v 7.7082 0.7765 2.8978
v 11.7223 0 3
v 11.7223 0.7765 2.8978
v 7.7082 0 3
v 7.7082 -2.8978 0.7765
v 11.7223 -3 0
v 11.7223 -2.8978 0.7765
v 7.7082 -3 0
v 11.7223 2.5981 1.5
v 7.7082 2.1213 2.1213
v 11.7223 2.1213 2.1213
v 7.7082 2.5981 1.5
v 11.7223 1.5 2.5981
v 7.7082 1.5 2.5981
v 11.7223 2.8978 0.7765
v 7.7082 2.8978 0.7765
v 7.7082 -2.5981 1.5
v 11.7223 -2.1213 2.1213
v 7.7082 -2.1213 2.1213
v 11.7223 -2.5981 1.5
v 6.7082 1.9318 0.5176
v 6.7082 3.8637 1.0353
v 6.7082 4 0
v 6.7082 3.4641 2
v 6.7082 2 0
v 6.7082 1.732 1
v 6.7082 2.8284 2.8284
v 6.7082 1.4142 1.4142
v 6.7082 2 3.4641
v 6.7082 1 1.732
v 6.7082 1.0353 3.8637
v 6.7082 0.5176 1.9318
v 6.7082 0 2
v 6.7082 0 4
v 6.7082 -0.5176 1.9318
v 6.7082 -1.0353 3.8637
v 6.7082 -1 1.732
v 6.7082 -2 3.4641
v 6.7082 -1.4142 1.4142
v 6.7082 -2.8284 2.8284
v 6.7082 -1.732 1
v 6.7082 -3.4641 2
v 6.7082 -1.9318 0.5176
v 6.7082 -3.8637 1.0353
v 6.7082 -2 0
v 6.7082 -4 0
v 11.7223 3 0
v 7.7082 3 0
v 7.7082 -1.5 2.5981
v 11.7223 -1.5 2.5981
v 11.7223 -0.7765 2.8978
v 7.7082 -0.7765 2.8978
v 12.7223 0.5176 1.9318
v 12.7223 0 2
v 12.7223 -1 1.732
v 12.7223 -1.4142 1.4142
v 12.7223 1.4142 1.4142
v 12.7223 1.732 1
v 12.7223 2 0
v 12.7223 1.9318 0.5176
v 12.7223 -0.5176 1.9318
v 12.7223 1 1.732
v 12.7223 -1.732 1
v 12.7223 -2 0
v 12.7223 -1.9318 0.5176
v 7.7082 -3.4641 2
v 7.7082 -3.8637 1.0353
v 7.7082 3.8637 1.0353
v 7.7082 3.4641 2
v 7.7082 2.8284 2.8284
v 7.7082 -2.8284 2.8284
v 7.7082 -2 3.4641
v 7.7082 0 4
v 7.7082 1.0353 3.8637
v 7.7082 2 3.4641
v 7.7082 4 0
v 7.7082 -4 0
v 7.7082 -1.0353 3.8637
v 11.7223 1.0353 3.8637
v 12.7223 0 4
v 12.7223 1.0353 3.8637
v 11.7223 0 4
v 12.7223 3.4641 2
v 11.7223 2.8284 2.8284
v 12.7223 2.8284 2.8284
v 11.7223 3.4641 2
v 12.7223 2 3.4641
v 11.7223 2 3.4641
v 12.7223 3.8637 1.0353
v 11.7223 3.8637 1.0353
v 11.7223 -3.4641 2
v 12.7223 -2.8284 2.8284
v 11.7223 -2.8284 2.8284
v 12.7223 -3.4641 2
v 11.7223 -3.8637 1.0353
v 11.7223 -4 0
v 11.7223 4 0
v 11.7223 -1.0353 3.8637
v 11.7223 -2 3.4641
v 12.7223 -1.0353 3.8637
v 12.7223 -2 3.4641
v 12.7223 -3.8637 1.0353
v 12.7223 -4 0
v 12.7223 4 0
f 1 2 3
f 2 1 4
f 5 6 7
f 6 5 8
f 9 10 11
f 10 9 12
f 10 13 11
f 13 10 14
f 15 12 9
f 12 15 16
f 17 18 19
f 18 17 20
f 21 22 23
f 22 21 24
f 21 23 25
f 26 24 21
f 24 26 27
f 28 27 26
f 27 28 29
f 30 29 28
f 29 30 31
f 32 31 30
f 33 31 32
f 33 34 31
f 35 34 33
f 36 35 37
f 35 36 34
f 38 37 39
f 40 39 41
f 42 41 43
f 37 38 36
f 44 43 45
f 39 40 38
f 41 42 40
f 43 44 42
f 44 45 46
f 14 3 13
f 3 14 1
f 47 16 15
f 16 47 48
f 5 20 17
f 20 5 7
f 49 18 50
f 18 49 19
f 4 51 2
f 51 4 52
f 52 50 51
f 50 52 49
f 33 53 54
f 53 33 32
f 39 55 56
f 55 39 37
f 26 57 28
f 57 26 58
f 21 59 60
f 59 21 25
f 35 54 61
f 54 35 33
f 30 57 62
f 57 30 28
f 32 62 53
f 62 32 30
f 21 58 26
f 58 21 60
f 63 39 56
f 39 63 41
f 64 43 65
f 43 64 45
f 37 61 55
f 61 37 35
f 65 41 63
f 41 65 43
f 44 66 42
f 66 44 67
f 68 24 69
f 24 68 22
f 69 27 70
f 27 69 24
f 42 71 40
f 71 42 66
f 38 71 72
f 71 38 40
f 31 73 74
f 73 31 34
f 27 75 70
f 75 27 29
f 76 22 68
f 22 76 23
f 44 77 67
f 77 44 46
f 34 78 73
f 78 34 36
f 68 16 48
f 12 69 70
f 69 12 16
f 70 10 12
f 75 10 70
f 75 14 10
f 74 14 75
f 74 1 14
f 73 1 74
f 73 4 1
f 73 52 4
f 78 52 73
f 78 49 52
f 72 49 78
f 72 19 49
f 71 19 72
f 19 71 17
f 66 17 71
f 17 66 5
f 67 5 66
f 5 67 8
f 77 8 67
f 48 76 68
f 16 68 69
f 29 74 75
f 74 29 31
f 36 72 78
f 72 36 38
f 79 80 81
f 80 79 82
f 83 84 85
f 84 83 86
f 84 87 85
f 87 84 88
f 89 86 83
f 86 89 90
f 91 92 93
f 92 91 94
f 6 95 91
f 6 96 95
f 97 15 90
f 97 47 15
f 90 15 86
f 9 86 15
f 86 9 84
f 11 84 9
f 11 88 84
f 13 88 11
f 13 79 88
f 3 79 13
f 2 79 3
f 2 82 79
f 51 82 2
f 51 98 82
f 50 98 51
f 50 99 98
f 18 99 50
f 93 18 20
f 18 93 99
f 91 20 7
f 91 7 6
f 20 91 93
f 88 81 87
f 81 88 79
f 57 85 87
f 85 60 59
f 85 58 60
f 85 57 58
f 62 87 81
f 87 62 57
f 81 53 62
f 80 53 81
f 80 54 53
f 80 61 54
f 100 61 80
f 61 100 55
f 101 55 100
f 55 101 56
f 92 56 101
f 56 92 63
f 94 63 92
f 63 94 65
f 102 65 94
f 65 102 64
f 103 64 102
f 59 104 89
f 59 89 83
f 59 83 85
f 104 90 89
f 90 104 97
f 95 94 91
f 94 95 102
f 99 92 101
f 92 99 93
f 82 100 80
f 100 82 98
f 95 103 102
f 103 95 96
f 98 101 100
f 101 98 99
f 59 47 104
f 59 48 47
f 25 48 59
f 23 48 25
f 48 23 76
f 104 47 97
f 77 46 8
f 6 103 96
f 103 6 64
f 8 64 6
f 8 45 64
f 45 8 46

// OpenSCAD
// file: ../build_environments.scad
// build_environments.scad: modules to build level sections
//

module pool(diameter=10.0, wall_height=2.0, step_width=3.0, connections=[])
{
    difference() {
        union() {
        difference() {
            cylinder(h=0.5,r1=diameter+step_width,r2=diameter+step_width,$fn=48);
            translate([0,0,-0.1])
                cylinder(h=0.7,r1=diameter,r2=diameter,$fn=48);
        }
        difference() {
            cylinder(h=wall_height,r1=diameter+step_width+1.0,r2=diameter+step_width+1.0,$fn=48);
            translate([0,0,-0.1])
                cylinder(h=wall_height+0.2,r1=diameter+step_width,r2=diameter+step_width,$fn=48);
        }
        }
    
        for (c = connections)
        {
            rotate([0,90,0]) {
                angle = atan2(c[1],c[0]);
                rotate([-angle,0,0]) {
                    cylinder(h=diameter+5.0,r1=c[2],r2=c[2],$fn=48);
                }
            }
        }
    }
}

module straight(length=10.0, width=2.0, dy1=0.0, dy2=0.0, dz=0.0)
{
    dims = [0, 0, 0, 0, 0, (dz/length)];
    matrix = [
        [ 1, dims[0], dims[1], 0 ],
        [ dims[2], 1, dims[4], 0 ],
        [ dims[5], dims[3], 1, 0 ],
        [ 0, 0, 0, 1 ]
    ];
    multmatrix(matrix)
    difference() {
        translate([dy1,0,0])
        union() {
            rotate([0,90,0]) {
                difference() {
                    cylinder(h=(length-dy1-dy2),r1=width+1.0,r2=width+1.0,$fn=24);
                    translate([0,0,-0.1])
                        cylinder(h=(length-dy1-dy2+0.2),r1=width,r2=width,$fn=24);
                }
                difference() {
                    cylinder(h=1.0,r1=width+2.0,r2=width+2.0,$fn=24);
                    translate([0,0,-0.1])
                        cylinder(h=1.2,r1=width,r2=width,$fn=24);
                }
                translate([0,0,(length-dy1-dy2)-1.0]) {
                    difference() {
                        cylinder(h=1.0,r1=width+2.0,r2=width+2.0,$fn=24);
                        translate([0,0,-0.1])
                            cylinder(h=1.2,r1=width,r2=width,$fn=24);
                    }
                }
            }
        }
        translate([0,0,-(2*width+4.0)/2])
            cube([3*length,3*length,2*width+4.0],center=true);
    }
}

module curve(p0=[0,0], center=[0,0], dir=1, angle=0.0, width=2.0)
{
    radius = sqrt((p0[0]-center[0])*(p0[0]-center[0]) + (p0[1]-center[1])*(p0[1]-center[1]));
    if (dir == 0) {
        difference() {
            rotate([0,0,-90])
            difference() {
                rotate_extrude(angle = angle, convexity = 10, $fn=32)
                    translate([radius, 0, 0])
                        circle(r = width+1.0,$fn=24);
                rotate([0,0,-1.0])
                    rotate_extrude(angle = angle+2.0, convexity = 10, $fn=32)
                        translate([radius, 0, 0])
                            circle(r = width,$fn=24);
            }
            translate([0,0,-(2*width+4.0)/2])
                cube([5*radius,5*radius,2*width+4.0],center=true);
        }
    }
    else {
        difference() {
            rotate([0,0,90])
            difference() {
                rotate_extrude(angle = -angle, convexity = 10, $fn=32)
                    translate([radius, 0, 0])
                        circle(r = width+1.0,$fn=24);
                rotate([0,0,1.0])
                    rotate_extrude(angle = -angle-2.0, convexity = 10, $fn=32)
                        translate([radius, 0, 0])
                            circle(r = width,$fn=24);
            }
            translate([0,0,-(2*width+4.0)/2])
                cube([5*radius,5*radius,2*width+4.0],center=true);
        }
    }

}

// test pool
//pool(diameter=12.0000, wall_height=3.0000, step_width=3.0000, connections=[[0.0000,-26.0000,2.0000], [23.6074,0.0000,2.0000]]);

// test straight, slope
//straight(length=26.0000, width=2.0000, dy1=11.8322, dy2=6.7082, dz=0.0000);
//straight(length=29.1549, width=12.0000, dy1=0.0000, dy2=0.0000, dz=-15.0000);

// test curve
//curve(p0=[23.6074, 0.0000], center=[23.6074, 5.0000], dir=0, angle=60.1011, width=2.0000);
//curve(p0=[33.6426, 12.4219], center=[37.9771, 9.9295], dir=1, angle=120.4627, width=2.0000);
// main file
use <../build_environments.scad>;
straight(length=12.7223, width=2.0000, dy1=6.7082, dy2=0.0000, dz=0.0000);
